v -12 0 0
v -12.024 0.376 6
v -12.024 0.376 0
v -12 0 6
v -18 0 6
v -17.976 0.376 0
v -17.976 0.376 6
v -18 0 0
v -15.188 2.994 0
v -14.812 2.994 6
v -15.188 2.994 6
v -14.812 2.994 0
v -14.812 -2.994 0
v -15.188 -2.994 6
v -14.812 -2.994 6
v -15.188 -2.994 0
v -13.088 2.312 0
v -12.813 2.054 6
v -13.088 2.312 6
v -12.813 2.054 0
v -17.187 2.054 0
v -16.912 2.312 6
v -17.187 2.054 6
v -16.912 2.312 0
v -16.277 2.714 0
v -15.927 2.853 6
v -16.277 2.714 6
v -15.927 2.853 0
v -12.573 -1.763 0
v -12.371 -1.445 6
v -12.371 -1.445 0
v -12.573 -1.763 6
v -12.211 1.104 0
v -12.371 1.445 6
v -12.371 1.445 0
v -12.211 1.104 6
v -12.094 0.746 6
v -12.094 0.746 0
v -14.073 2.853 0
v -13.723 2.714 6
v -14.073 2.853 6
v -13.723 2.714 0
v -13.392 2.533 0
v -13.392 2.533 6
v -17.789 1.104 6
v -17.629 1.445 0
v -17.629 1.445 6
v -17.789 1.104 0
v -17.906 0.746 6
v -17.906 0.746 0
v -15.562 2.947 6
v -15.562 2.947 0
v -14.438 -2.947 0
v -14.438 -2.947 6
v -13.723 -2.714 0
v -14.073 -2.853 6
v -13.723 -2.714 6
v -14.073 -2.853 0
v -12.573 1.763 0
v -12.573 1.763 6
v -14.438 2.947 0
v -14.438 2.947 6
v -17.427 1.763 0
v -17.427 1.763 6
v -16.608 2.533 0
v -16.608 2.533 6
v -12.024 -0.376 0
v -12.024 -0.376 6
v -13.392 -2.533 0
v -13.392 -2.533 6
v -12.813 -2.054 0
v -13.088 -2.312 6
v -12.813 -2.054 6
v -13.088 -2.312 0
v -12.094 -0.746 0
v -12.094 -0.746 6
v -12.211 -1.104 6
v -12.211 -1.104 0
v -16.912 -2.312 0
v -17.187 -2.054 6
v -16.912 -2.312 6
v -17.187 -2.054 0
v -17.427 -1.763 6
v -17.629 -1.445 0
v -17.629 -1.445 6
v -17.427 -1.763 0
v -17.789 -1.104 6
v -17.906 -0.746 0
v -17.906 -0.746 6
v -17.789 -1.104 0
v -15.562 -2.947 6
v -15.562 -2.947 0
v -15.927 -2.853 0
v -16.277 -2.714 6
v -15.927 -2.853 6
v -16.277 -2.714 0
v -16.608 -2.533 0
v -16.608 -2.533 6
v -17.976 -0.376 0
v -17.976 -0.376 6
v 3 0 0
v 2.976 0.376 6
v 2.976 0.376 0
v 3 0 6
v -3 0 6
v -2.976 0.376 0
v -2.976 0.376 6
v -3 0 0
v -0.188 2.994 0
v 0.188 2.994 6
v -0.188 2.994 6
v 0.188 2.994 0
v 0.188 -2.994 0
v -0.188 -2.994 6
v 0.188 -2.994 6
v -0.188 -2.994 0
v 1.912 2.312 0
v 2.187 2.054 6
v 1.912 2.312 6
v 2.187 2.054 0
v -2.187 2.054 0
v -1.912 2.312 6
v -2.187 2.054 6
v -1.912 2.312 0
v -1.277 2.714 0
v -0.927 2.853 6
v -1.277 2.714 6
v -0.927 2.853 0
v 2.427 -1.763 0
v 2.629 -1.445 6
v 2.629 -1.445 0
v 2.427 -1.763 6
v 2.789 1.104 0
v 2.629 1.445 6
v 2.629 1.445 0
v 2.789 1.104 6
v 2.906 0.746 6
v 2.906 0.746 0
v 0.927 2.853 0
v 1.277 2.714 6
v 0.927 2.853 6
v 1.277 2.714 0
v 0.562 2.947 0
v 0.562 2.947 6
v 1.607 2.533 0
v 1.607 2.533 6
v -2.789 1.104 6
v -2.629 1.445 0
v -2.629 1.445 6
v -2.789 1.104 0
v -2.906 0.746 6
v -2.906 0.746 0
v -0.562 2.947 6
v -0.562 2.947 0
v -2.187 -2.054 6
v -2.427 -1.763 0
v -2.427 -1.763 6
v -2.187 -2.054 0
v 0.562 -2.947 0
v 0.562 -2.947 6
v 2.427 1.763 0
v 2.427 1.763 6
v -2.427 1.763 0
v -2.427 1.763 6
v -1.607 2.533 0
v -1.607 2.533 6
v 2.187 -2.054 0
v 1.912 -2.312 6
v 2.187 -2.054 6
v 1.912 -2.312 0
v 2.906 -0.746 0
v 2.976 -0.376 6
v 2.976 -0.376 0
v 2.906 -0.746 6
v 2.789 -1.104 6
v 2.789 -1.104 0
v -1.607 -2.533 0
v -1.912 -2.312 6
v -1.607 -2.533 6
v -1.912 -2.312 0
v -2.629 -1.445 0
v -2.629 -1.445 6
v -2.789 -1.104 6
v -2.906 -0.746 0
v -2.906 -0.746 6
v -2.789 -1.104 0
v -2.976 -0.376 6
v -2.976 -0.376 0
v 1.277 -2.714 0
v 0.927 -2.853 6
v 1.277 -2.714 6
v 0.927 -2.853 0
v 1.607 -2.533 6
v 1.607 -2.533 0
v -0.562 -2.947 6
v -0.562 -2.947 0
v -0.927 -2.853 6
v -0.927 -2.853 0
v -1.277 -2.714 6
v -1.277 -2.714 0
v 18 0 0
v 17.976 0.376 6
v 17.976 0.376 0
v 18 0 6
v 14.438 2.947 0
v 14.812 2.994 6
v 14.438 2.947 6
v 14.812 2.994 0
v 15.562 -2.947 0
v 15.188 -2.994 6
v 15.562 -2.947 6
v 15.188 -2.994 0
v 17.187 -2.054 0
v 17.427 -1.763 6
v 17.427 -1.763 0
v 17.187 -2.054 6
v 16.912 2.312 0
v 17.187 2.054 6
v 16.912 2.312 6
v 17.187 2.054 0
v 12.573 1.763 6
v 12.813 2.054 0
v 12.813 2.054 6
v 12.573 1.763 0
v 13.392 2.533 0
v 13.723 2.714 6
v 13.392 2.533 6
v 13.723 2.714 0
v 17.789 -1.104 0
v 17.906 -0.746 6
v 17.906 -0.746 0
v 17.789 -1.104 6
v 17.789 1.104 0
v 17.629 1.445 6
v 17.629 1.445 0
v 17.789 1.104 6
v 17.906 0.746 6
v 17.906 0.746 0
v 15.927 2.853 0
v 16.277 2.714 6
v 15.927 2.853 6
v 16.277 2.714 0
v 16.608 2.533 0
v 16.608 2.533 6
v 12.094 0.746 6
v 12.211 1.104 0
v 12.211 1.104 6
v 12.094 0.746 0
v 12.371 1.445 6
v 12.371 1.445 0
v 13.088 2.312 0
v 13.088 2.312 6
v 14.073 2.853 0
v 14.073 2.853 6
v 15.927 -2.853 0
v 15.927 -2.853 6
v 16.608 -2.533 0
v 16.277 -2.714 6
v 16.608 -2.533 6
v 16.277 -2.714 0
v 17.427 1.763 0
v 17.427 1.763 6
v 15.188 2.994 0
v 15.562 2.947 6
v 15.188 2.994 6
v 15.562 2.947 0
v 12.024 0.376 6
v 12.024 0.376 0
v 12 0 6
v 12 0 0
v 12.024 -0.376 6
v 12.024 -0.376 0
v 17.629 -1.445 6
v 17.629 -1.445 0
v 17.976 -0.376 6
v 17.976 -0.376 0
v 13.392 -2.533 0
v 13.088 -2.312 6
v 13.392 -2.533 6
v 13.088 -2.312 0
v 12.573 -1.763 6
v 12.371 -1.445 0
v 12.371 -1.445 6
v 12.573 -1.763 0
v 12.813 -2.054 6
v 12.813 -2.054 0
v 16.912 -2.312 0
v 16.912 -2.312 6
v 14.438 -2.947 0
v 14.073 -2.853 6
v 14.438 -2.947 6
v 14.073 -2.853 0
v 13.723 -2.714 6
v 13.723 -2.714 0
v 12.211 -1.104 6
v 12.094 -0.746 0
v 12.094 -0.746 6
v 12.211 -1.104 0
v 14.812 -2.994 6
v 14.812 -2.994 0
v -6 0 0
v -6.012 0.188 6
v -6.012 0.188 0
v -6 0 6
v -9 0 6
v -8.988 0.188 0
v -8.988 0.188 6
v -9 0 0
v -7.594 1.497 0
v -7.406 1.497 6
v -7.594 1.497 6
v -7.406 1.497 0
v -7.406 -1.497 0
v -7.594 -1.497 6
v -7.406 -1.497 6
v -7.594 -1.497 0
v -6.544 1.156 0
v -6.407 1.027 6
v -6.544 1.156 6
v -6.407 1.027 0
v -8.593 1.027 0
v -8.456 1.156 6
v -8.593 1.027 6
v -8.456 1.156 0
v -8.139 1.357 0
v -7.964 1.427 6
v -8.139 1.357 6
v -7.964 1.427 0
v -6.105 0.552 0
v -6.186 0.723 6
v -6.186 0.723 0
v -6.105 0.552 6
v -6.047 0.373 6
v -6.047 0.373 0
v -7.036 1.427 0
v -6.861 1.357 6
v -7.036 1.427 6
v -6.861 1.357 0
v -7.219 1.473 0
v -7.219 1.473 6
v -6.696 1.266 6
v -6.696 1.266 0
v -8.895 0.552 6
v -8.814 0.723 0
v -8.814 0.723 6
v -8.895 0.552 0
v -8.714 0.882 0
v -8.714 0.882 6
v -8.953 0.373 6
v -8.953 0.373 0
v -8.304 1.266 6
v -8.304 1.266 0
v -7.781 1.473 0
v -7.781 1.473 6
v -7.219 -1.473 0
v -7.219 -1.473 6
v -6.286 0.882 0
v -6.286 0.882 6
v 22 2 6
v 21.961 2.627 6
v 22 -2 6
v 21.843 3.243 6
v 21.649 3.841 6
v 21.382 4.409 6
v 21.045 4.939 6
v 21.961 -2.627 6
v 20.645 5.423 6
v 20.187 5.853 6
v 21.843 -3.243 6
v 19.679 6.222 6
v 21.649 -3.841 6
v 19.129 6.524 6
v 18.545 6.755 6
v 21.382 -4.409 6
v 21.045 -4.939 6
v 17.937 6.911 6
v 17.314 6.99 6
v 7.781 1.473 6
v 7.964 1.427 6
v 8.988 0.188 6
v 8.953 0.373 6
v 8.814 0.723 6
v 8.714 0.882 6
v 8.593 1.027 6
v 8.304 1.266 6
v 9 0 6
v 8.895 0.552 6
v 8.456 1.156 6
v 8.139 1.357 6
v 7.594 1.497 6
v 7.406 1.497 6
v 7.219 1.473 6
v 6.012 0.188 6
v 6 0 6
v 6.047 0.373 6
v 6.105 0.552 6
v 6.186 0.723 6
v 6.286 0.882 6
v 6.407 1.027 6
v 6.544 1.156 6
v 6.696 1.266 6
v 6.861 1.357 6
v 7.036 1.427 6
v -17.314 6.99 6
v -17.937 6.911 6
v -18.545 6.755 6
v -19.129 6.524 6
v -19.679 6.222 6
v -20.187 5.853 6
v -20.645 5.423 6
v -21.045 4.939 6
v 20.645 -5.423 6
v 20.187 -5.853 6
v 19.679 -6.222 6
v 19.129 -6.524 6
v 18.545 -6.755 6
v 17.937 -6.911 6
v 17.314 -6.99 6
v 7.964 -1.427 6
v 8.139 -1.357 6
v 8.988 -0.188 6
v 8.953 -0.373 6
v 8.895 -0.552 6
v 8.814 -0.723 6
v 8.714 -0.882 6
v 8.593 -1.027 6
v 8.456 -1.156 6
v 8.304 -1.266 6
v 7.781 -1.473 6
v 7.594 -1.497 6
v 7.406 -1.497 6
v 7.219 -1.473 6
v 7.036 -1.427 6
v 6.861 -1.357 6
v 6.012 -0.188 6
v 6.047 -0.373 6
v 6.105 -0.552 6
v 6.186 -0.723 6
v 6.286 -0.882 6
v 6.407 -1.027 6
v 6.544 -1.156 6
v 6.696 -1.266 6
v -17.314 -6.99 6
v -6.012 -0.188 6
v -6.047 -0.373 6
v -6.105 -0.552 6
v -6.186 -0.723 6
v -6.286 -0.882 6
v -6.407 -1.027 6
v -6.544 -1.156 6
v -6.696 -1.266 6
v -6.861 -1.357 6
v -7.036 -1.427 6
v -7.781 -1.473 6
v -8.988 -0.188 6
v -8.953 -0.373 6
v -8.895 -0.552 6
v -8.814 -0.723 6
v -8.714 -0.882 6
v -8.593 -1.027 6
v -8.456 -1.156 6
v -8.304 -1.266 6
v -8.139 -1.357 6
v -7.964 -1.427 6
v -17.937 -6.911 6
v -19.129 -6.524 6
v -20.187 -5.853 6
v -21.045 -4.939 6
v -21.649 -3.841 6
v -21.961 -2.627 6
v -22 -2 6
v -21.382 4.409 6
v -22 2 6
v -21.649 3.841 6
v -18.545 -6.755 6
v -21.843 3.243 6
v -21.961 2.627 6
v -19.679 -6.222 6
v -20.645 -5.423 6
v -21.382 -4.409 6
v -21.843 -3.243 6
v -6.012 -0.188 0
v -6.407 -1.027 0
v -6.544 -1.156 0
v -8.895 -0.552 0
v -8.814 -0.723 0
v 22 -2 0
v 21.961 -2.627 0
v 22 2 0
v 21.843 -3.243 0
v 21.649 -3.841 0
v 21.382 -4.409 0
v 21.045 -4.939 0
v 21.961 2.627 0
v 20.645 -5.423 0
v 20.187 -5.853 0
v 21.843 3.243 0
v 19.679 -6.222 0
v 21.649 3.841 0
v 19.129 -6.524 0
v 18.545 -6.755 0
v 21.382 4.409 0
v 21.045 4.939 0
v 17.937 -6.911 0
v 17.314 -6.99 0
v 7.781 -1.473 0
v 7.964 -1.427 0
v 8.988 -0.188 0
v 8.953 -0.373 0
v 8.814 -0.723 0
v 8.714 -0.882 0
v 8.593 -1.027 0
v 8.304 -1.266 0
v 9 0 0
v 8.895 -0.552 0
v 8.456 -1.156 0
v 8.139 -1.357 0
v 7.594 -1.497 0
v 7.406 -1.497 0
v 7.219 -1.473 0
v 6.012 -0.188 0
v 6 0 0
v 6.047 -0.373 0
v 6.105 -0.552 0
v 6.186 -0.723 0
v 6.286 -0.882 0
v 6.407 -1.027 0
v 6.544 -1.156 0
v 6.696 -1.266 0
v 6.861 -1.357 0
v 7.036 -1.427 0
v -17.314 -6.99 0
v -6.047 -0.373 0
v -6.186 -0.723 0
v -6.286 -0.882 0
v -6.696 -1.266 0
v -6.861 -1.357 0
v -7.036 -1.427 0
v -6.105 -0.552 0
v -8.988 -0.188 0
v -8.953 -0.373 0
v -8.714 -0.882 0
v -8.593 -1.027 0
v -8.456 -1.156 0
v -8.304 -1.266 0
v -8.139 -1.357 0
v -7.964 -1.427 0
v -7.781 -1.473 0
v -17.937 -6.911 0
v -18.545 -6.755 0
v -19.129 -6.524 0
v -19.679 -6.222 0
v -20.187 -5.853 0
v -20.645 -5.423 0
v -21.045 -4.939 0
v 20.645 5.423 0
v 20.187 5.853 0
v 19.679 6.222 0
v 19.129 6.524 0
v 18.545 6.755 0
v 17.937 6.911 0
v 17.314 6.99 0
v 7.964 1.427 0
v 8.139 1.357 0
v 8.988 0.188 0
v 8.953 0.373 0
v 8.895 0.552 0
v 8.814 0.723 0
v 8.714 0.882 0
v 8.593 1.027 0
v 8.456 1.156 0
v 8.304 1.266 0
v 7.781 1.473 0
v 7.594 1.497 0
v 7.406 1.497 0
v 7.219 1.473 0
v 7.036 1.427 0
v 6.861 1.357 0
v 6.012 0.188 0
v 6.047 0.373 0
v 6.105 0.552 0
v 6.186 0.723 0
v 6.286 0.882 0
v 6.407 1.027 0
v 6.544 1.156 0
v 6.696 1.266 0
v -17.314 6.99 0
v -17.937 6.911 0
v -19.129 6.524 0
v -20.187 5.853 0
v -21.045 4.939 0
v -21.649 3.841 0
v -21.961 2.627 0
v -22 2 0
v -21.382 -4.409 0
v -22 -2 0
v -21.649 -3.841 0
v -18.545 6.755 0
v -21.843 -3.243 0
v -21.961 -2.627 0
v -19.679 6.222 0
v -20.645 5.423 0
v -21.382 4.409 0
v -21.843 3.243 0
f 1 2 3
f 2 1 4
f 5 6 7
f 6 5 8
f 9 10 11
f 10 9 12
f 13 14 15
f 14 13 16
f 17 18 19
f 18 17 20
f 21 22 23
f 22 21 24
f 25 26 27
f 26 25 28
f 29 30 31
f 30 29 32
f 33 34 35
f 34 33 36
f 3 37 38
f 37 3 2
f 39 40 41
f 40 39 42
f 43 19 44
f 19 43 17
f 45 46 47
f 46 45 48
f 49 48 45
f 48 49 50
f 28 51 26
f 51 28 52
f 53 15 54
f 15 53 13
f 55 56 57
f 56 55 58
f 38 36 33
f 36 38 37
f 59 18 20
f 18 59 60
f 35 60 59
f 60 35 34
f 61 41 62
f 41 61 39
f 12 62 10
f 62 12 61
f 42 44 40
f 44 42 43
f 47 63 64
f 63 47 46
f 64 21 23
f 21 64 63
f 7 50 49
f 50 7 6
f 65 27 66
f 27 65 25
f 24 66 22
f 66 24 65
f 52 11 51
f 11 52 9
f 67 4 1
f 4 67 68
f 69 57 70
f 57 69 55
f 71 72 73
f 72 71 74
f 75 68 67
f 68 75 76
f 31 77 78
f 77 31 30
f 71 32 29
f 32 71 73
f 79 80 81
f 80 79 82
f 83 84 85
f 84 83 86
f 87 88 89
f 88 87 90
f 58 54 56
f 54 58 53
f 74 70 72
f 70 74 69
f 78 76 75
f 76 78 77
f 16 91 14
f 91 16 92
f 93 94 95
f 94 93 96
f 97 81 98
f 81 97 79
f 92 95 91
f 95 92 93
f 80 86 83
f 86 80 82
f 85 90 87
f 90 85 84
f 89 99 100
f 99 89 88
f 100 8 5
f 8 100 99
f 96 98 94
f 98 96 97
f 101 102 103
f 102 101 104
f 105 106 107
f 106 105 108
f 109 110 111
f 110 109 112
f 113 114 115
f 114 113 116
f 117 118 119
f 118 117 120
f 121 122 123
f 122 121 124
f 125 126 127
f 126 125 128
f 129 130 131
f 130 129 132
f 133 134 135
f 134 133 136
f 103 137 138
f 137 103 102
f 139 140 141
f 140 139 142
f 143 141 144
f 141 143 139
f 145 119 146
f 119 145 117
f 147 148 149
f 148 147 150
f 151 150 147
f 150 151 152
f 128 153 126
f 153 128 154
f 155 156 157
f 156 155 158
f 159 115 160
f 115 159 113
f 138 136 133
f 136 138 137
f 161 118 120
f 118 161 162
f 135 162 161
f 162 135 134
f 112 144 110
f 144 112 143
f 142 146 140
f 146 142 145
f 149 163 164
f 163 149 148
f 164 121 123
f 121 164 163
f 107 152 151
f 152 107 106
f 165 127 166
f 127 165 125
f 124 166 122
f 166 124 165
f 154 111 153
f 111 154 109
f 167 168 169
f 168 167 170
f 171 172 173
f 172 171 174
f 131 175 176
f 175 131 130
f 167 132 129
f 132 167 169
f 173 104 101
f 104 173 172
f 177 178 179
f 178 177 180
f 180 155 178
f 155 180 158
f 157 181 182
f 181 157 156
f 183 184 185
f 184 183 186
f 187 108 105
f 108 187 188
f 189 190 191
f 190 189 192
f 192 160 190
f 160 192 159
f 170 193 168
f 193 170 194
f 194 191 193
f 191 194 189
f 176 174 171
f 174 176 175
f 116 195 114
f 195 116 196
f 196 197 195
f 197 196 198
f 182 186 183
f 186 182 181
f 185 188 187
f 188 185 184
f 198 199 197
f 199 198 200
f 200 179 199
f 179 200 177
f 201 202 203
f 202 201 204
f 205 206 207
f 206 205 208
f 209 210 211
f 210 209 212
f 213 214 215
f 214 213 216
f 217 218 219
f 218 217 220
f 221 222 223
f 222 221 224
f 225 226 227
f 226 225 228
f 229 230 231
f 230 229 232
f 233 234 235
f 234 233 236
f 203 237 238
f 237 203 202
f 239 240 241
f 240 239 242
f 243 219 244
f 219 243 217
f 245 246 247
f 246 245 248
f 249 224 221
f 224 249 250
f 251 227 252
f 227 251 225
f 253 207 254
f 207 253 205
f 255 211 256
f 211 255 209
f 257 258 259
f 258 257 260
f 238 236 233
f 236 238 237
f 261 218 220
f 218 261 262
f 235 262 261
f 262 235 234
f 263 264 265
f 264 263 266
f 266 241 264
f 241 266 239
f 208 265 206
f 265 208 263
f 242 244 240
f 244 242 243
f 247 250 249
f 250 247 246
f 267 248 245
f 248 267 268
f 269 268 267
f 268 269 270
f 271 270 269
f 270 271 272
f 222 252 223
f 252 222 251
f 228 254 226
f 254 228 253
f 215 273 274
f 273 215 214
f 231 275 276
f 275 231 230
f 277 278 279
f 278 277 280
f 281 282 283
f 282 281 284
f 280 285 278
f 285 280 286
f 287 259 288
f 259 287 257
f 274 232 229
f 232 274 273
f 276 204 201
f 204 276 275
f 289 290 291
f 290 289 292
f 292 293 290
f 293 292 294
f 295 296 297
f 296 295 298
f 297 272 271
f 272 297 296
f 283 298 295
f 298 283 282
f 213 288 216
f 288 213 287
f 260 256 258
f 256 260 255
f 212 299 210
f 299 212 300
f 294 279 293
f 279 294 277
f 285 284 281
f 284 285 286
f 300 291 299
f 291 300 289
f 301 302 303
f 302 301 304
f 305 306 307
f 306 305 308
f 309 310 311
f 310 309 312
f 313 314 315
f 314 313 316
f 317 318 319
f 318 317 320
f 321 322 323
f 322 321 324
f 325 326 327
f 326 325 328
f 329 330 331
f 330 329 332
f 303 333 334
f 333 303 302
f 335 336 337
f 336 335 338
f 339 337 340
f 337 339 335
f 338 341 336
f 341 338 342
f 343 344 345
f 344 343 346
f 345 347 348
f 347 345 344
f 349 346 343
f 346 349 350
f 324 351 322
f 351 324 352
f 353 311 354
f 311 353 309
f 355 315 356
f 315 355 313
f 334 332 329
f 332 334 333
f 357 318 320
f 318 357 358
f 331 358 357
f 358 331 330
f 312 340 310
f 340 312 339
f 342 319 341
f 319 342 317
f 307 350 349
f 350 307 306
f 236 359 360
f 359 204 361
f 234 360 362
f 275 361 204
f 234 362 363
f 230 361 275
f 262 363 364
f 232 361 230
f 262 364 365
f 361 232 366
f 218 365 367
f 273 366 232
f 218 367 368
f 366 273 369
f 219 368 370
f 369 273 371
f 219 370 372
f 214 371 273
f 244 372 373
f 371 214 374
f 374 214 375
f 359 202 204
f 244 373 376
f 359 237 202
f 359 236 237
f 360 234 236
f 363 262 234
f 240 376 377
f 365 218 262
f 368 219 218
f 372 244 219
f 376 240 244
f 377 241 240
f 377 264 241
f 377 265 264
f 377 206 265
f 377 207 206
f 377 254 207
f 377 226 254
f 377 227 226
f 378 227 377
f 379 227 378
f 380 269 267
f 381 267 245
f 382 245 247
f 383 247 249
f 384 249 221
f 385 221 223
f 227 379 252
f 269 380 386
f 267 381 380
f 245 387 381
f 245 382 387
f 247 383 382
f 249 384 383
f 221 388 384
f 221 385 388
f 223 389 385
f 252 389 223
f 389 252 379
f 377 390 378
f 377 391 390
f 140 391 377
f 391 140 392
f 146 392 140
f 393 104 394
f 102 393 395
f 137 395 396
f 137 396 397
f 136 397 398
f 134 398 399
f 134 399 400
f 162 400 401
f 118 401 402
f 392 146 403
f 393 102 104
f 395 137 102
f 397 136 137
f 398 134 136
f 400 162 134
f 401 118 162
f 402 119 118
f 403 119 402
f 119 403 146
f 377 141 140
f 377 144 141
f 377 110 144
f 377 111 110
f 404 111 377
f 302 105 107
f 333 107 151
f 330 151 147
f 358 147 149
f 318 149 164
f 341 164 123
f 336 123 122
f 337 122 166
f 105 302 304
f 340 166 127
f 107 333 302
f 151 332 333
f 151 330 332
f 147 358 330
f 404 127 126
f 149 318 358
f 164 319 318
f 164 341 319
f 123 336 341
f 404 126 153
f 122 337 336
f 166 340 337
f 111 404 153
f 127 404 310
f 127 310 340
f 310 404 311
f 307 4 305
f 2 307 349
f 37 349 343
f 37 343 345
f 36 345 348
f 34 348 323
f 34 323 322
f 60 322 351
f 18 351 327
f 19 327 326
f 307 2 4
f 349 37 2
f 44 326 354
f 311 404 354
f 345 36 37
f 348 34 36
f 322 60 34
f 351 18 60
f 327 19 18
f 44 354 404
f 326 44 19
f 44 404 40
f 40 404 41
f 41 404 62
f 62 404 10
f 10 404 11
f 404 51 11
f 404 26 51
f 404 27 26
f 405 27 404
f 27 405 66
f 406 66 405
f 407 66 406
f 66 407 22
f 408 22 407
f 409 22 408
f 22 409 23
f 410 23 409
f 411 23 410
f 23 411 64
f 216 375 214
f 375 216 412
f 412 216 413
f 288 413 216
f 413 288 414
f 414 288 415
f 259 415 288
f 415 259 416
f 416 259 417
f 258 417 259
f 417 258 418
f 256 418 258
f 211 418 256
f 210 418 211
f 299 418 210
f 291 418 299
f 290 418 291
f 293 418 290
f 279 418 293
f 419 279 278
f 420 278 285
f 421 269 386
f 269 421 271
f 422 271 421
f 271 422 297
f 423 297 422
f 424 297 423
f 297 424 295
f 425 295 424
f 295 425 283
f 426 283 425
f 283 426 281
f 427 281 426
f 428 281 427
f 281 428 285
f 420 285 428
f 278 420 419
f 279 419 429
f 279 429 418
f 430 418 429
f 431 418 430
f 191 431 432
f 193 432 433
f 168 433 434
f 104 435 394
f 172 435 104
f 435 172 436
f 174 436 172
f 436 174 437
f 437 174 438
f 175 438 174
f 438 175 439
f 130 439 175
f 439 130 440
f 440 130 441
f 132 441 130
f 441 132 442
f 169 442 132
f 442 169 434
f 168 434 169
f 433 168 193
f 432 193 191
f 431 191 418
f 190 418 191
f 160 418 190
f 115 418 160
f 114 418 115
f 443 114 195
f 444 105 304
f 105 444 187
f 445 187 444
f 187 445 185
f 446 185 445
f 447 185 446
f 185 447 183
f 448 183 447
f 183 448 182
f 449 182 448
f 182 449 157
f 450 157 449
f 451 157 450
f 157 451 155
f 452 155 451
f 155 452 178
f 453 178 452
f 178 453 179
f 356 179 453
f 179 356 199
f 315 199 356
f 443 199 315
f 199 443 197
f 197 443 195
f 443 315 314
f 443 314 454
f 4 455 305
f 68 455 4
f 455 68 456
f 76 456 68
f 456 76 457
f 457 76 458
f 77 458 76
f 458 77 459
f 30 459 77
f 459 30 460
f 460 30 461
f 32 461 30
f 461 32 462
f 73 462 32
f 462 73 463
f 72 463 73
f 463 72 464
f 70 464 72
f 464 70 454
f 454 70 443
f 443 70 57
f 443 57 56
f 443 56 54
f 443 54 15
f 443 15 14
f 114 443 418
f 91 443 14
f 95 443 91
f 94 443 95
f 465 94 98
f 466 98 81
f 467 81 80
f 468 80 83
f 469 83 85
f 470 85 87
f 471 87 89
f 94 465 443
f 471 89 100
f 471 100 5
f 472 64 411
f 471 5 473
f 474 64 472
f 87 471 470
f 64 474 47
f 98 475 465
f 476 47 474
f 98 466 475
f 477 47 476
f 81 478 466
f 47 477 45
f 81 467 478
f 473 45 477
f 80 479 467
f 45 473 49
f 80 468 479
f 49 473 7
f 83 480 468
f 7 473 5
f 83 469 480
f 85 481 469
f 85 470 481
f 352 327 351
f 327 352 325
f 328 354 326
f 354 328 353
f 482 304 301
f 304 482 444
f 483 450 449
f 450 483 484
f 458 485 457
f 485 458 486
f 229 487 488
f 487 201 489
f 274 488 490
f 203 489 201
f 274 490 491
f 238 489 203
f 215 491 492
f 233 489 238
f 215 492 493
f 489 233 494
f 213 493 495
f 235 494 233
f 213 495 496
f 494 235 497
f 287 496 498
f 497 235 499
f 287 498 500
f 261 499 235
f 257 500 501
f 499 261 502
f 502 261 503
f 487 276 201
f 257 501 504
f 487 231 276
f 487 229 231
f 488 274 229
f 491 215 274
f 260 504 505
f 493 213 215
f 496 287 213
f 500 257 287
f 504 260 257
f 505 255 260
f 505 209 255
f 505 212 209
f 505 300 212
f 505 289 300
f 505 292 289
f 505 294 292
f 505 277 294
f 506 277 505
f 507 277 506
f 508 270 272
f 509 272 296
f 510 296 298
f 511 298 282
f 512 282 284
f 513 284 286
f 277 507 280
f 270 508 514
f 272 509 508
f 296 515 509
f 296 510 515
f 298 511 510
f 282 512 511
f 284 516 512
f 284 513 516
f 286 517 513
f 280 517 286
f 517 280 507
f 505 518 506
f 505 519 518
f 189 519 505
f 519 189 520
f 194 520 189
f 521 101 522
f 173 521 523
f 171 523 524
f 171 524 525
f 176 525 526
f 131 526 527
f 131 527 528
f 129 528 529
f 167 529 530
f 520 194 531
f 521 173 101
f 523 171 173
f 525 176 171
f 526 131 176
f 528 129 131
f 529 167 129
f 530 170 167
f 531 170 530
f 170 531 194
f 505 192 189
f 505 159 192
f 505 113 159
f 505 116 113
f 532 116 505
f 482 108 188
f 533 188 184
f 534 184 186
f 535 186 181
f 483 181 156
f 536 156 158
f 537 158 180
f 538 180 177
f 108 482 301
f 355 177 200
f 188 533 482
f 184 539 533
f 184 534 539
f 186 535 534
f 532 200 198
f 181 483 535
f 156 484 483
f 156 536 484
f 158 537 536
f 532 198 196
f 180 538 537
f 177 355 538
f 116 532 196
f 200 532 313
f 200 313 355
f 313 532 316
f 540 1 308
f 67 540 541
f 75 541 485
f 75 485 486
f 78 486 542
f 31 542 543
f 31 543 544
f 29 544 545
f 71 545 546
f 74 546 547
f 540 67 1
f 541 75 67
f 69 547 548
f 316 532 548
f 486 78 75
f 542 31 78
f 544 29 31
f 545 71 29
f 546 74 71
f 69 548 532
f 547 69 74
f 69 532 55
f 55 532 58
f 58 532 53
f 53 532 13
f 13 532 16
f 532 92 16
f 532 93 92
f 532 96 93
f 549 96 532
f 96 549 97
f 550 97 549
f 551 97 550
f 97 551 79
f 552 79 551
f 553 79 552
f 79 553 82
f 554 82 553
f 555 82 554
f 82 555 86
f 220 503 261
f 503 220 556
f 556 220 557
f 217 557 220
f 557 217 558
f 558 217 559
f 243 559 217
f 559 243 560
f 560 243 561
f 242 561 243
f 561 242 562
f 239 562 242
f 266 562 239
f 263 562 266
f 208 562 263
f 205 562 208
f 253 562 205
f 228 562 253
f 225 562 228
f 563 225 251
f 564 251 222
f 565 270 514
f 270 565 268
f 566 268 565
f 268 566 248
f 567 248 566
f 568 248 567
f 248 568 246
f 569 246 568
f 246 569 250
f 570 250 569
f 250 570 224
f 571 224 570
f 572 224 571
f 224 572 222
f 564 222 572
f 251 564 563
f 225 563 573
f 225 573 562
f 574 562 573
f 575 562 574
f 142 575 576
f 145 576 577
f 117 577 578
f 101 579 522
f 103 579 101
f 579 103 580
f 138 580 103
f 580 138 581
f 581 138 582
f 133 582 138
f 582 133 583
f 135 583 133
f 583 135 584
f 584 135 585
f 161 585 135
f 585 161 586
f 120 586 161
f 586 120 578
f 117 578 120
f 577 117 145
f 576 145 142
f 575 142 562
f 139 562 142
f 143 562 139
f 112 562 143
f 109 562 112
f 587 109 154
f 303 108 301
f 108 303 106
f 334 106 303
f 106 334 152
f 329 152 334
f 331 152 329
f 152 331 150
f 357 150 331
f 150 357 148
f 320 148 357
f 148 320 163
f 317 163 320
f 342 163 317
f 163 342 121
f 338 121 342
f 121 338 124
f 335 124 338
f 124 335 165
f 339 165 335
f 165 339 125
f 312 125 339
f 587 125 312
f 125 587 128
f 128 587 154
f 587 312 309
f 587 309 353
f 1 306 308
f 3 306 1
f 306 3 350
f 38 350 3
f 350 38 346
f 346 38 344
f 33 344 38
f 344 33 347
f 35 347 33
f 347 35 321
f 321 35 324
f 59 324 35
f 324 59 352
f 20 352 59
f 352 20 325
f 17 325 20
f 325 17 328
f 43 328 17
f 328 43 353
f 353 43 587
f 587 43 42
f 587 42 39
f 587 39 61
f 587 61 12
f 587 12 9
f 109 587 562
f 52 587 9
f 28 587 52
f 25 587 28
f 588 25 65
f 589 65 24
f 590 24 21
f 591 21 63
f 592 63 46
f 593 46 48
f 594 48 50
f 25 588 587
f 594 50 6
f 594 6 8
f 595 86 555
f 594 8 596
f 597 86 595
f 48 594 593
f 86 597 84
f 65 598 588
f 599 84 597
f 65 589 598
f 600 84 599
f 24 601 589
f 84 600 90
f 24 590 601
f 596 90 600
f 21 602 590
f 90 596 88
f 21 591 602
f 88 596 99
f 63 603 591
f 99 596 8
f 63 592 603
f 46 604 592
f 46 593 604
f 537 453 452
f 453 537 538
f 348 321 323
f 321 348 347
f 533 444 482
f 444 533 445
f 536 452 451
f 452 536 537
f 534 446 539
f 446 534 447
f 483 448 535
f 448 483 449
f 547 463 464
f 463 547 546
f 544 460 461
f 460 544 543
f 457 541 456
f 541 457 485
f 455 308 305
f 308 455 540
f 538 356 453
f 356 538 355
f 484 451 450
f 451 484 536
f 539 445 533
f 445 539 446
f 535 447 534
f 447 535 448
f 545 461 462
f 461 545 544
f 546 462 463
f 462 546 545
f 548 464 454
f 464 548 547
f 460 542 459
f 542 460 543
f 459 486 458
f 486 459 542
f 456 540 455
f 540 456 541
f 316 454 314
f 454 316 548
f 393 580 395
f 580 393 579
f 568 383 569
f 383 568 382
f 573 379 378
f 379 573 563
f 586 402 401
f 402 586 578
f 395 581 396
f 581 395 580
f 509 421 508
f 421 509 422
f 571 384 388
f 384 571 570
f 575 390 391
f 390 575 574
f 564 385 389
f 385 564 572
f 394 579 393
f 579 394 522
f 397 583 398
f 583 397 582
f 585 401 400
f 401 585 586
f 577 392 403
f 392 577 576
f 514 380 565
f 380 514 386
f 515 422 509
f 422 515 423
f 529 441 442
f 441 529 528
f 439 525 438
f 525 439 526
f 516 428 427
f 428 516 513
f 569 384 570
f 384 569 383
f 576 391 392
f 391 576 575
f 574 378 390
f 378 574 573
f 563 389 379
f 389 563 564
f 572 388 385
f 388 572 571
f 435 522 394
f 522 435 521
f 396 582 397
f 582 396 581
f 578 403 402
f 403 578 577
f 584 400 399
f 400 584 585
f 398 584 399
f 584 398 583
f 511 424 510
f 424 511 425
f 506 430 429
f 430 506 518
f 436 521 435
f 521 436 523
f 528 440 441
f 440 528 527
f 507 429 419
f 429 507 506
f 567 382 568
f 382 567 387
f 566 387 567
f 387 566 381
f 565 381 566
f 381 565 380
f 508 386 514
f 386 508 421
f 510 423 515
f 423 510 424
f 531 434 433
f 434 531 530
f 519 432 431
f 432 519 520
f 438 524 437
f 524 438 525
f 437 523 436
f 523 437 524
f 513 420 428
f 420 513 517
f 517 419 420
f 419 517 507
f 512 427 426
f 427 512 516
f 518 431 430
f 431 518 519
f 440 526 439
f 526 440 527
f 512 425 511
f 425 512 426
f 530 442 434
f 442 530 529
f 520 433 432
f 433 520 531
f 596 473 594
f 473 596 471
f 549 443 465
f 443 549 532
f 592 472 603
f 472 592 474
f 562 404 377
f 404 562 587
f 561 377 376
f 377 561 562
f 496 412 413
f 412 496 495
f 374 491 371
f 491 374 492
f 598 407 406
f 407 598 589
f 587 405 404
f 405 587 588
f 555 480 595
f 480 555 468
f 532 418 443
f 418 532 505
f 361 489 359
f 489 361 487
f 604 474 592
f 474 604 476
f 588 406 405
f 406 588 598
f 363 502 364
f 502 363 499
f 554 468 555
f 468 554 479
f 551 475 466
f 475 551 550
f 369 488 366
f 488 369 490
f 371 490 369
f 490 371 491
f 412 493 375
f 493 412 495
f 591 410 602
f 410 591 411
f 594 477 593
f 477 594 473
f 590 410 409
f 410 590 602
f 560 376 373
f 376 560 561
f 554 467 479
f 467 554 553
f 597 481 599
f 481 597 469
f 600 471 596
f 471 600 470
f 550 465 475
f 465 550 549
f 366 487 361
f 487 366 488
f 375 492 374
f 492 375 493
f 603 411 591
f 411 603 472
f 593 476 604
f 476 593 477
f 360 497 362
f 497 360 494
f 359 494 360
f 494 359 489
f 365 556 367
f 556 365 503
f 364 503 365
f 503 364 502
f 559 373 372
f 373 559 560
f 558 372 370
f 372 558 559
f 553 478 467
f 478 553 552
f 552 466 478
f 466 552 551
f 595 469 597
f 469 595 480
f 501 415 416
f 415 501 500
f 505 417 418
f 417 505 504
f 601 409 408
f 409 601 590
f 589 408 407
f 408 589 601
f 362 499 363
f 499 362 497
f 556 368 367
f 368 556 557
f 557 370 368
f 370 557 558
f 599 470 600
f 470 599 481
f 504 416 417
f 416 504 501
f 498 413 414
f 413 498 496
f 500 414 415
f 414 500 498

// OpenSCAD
$fn = 50;


difference() {
	union() {
		hull() {
			translate(v = [-17.0000000000, 2.0000000000, 0]) {
				cylinder(h = 6, r = 5);
			}
			translate(v = [17.0000000000, 2.0000000000, 0]) {
				cylinder(h = 6, r = 5);
			}
			translate(v = [-17.0000000000, -2.0000000000, 0]) {
				cylinder(h = 6, r = 5);
			}
			translate(v = [17.0000000000, -2.0000000000, 0]) {
				cylinder(h = 6, r = 5);
			}
		}
	}
	union() {
		translate(v = [-15.0000000000, 0.0000000000, -100.0000000000]) {
			cylinder(h = 200, r = 3.0000000000);
		}
		translate(v = [0.0000000000, 0.0000000000, -100.0000000000]) {
			cylinder(h = 200, r = 3.0000000000);
		}
		translate(v = [15.0000000000, 0.0000000000, -100.0000000000]) {
			cylinder(h = 200, r = 3.0000000000);
		}
		translate(v = [-15.0000000000, 0.0000000000, 0]) {
			cylinder(h = 6, r = 1.5000000000);
		}
		translate(v = [-7.5000000000, 0.0000000000, 0]) {
			cylinder(h = 6, r = 1.5000000000);
		}
		cylinder(h = 6, r = 1.5000000000);
		translate(v = [7.5000000000, 0.0000000000, 0]) {
			cylinder(h = 6, r = 1.5000000000);
		}
		translate(v = [15.0000000000, 0.0000000000, 0]) {
			cylinder(h = 6, r = 1.5000000000);
		}
		translate(v = [-15.0000000000, 0.0000000000, 0]) {
			cylinder(h = 6, r = 1.5000000000);
		}
		translate(v = [-7.5000000000, 0.0000000000, 0]) {
			cylinder(h = 6, r = 1.5000000000);
		}
		cylinder(h = 6, r = 1.5000000000);
		translate(v = [7.5000000000, 0.0000000000, 0]) {
			cylinder(h = 6, r = 1.5000000000);
		}
		translate(v = [15.0000000000, 0.0000000000, 0]) {
			cylinder(h = 6, r = 1.5000000000);
		}
		translate(v = [-15.0000000000, 0.0000000000, 0]) {
			cylinder(h = 6, r = 1.5000000000);
		}
		translate(v = [-7.5000000000, 0.0000000000, 0]) {
			cylinder(h = 6, r = 1.5000000000);
		}
		cylinder(h = 6, r = 1.5000000000);
		translate(v = [7.5000000000, 0.0000000000, 0]) {
			cylinder(h = 6, r = 1.5000000000);
		}
		translate(v = [15.0000000000, 0.0000000000, 0]) {
			cylinder(h = 6, r = 1.5000000000);
		}
	}
}
